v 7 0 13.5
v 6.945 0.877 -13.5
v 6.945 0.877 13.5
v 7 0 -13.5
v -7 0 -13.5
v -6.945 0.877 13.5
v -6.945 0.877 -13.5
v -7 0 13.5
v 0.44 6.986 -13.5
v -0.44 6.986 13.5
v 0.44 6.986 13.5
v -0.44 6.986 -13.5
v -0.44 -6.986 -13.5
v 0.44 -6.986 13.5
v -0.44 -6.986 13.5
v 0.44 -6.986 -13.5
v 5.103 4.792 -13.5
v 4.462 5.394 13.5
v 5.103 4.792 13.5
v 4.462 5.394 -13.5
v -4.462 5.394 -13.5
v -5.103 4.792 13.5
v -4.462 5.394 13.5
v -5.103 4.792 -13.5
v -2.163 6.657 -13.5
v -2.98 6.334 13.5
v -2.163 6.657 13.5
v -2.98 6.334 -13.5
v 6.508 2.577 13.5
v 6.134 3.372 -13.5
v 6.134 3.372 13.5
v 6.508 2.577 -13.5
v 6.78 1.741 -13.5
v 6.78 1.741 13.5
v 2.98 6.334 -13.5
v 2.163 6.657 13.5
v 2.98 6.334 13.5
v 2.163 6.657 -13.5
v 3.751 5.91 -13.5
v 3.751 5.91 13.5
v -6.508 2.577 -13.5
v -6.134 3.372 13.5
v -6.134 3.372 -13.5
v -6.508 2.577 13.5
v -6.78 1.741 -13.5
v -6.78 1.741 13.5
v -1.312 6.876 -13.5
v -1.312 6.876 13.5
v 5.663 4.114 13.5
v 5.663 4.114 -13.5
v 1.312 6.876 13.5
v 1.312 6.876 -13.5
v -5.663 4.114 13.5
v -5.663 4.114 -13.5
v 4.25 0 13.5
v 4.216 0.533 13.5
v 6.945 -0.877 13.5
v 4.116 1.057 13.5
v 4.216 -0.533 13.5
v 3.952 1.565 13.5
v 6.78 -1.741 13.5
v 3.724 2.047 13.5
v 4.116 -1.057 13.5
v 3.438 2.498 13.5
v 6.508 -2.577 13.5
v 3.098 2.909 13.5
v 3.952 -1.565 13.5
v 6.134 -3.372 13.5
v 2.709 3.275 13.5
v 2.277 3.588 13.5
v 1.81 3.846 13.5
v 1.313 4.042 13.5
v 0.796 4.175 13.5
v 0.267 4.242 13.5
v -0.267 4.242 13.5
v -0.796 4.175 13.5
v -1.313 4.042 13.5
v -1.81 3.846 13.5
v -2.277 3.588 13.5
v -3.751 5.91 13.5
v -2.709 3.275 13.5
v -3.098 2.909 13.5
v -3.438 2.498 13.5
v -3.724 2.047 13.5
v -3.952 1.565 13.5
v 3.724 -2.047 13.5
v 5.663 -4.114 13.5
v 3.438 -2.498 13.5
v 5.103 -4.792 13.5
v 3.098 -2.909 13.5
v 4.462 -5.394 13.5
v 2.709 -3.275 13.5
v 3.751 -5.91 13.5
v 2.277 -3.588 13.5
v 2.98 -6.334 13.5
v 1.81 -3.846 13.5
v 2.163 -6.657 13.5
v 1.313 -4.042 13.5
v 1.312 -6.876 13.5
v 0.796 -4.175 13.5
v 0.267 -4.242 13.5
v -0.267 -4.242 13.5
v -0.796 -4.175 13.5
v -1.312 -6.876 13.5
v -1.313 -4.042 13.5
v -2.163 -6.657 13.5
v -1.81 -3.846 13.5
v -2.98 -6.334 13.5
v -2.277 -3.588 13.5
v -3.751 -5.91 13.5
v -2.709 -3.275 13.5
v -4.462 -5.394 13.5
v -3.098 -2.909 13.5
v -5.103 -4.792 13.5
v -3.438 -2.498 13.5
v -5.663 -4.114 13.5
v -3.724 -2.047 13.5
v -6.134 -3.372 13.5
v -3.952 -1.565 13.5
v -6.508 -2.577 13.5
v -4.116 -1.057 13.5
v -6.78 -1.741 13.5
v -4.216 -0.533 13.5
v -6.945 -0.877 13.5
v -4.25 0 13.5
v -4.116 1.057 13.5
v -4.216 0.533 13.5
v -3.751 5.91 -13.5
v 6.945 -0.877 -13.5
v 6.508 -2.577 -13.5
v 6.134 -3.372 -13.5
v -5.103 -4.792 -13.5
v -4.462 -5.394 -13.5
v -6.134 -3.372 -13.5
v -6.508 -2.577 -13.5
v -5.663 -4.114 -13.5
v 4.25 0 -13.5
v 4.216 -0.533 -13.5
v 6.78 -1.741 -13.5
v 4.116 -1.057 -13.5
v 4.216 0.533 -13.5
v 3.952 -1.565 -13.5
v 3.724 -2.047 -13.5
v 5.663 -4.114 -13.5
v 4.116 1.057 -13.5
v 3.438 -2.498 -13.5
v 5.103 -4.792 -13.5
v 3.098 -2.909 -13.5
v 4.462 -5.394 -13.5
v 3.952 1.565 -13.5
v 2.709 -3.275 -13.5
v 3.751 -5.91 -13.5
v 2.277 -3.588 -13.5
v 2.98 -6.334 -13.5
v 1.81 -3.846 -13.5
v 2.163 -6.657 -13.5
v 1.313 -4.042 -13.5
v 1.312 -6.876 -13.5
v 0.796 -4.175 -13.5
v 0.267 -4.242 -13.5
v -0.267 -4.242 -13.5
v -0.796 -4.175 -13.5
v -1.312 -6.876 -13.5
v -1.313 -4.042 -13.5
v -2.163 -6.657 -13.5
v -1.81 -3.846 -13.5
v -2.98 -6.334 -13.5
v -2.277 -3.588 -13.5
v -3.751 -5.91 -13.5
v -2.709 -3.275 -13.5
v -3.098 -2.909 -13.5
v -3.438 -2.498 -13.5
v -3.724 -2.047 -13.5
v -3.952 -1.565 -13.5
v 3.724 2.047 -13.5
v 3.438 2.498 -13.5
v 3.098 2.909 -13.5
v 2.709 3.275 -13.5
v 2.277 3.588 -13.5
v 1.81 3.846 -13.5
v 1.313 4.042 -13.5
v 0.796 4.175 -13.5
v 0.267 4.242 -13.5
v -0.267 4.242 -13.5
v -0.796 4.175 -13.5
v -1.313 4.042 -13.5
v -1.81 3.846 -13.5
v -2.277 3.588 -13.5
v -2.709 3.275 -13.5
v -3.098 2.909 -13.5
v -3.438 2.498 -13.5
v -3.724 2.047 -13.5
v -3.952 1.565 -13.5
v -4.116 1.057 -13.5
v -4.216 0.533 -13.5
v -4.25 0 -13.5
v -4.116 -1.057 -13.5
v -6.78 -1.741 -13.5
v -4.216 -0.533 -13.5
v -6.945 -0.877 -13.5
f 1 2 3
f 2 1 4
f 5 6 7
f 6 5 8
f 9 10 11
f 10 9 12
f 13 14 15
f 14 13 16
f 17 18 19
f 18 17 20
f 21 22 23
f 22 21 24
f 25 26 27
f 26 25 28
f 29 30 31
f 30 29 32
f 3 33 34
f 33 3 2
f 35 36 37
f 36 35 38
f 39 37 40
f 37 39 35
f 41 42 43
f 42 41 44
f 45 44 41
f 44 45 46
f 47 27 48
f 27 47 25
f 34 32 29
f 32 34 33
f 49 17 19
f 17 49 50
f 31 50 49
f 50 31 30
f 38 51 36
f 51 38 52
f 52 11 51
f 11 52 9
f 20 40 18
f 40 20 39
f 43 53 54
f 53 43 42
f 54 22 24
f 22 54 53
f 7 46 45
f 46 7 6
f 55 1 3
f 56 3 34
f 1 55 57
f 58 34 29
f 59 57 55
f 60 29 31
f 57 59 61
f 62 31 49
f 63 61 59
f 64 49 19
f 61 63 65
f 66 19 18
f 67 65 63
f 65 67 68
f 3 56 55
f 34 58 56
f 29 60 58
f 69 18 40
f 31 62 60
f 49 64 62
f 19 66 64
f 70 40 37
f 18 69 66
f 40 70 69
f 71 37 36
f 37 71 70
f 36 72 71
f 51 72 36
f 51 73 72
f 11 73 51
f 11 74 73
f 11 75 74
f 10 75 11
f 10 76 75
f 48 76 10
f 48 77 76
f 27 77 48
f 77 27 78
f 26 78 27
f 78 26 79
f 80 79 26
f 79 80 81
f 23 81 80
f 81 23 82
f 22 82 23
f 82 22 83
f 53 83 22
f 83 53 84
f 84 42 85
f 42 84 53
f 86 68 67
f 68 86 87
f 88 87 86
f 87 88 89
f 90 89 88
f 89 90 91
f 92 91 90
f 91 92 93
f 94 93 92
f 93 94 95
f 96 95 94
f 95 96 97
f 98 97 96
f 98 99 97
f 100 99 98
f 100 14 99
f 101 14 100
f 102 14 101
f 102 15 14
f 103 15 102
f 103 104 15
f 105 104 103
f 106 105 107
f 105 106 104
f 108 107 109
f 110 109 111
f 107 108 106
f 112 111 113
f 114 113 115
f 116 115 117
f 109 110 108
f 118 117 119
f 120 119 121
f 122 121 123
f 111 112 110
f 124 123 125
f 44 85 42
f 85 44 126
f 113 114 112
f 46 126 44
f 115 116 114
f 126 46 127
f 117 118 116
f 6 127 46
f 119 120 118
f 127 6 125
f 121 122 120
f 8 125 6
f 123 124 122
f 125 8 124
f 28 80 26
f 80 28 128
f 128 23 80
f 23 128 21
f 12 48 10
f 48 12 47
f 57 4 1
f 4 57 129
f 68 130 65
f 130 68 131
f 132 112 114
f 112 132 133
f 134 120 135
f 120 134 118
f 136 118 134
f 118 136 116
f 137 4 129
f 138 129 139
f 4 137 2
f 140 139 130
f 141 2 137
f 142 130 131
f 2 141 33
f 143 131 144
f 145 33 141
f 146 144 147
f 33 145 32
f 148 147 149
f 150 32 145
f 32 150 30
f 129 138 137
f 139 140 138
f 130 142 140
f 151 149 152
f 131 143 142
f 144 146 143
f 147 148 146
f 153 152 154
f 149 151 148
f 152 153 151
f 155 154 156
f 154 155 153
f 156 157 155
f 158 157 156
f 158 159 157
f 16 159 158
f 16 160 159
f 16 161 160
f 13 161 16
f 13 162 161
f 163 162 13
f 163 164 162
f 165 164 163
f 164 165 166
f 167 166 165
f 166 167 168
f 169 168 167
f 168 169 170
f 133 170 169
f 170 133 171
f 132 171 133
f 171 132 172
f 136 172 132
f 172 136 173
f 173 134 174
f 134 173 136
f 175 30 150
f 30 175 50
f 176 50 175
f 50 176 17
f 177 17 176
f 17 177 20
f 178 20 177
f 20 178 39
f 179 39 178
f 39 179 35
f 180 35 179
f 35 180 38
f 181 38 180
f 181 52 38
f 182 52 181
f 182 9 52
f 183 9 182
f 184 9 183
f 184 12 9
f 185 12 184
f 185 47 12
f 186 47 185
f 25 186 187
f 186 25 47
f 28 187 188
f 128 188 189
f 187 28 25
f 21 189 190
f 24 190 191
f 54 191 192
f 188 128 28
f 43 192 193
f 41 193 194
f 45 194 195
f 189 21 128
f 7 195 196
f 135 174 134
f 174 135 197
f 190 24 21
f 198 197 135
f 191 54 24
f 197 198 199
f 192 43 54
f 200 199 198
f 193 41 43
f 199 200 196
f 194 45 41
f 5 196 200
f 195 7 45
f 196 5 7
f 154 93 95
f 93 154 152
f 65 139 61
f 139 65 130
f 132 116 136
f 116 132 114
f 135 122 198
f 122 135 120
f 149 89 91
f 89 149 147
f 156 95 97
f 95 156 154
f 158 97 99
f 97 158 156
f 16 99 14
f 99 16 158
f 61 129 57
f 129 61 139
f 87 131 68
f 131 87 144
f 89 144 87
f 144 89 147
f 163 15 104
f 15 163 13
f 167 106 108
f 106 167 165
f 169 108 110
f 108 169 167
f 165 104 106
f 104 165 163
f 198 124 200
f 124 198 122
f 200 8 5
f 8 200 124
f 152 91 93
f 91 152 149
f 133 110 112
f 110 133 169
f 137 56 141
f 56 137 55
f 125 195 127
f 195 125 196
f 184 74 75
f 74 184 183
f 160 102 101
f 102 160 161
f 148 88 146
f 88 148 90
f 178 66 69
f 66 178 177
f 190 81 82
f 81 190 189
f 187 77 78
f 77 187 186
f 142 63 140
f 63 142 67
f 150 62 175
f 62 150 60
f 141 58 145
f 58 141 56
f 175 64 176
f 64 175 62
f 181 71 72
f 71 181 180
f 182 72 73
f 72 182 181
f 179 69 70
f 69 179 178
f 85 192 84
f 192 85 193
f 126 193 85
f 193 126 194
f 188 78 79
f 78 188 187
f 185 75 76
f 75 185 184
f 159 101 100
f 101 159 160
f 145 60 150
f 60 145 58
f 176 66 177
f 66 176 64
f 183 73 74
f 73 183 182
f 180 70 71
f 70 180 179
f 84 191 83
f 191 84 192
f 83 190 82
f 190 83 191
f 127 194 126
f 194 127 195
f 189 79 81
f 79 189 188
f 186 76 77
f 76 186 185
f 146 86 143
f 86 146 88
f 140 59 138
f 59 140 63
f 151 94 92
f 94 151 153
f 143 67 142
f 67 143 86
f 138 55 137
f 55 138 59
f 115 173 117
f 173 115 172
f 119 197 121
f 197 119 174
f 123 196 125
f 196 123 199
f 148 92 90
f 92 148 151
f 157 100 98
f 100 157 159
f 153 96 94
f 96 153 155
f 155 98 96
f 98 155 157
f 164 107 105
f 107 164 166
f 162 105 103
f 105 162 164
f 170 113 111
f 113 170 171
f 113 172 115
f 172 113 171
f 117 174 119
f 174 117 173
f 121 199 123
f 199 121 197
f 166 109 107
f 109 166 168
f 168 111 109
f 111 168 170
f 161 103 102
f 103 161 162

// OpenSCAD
$fn = 50;


difference() {
	union() {
		translate(v = [0, 0, -13.5000000000]) {
			cylinder(h = 27, r = 7.0000000000);
		}
	}
	union() {
		translate(v = [0, 0, -100.0000000000]) {
			cylinder(h = 200, r = 4.2500000000);
		}
	}
}
